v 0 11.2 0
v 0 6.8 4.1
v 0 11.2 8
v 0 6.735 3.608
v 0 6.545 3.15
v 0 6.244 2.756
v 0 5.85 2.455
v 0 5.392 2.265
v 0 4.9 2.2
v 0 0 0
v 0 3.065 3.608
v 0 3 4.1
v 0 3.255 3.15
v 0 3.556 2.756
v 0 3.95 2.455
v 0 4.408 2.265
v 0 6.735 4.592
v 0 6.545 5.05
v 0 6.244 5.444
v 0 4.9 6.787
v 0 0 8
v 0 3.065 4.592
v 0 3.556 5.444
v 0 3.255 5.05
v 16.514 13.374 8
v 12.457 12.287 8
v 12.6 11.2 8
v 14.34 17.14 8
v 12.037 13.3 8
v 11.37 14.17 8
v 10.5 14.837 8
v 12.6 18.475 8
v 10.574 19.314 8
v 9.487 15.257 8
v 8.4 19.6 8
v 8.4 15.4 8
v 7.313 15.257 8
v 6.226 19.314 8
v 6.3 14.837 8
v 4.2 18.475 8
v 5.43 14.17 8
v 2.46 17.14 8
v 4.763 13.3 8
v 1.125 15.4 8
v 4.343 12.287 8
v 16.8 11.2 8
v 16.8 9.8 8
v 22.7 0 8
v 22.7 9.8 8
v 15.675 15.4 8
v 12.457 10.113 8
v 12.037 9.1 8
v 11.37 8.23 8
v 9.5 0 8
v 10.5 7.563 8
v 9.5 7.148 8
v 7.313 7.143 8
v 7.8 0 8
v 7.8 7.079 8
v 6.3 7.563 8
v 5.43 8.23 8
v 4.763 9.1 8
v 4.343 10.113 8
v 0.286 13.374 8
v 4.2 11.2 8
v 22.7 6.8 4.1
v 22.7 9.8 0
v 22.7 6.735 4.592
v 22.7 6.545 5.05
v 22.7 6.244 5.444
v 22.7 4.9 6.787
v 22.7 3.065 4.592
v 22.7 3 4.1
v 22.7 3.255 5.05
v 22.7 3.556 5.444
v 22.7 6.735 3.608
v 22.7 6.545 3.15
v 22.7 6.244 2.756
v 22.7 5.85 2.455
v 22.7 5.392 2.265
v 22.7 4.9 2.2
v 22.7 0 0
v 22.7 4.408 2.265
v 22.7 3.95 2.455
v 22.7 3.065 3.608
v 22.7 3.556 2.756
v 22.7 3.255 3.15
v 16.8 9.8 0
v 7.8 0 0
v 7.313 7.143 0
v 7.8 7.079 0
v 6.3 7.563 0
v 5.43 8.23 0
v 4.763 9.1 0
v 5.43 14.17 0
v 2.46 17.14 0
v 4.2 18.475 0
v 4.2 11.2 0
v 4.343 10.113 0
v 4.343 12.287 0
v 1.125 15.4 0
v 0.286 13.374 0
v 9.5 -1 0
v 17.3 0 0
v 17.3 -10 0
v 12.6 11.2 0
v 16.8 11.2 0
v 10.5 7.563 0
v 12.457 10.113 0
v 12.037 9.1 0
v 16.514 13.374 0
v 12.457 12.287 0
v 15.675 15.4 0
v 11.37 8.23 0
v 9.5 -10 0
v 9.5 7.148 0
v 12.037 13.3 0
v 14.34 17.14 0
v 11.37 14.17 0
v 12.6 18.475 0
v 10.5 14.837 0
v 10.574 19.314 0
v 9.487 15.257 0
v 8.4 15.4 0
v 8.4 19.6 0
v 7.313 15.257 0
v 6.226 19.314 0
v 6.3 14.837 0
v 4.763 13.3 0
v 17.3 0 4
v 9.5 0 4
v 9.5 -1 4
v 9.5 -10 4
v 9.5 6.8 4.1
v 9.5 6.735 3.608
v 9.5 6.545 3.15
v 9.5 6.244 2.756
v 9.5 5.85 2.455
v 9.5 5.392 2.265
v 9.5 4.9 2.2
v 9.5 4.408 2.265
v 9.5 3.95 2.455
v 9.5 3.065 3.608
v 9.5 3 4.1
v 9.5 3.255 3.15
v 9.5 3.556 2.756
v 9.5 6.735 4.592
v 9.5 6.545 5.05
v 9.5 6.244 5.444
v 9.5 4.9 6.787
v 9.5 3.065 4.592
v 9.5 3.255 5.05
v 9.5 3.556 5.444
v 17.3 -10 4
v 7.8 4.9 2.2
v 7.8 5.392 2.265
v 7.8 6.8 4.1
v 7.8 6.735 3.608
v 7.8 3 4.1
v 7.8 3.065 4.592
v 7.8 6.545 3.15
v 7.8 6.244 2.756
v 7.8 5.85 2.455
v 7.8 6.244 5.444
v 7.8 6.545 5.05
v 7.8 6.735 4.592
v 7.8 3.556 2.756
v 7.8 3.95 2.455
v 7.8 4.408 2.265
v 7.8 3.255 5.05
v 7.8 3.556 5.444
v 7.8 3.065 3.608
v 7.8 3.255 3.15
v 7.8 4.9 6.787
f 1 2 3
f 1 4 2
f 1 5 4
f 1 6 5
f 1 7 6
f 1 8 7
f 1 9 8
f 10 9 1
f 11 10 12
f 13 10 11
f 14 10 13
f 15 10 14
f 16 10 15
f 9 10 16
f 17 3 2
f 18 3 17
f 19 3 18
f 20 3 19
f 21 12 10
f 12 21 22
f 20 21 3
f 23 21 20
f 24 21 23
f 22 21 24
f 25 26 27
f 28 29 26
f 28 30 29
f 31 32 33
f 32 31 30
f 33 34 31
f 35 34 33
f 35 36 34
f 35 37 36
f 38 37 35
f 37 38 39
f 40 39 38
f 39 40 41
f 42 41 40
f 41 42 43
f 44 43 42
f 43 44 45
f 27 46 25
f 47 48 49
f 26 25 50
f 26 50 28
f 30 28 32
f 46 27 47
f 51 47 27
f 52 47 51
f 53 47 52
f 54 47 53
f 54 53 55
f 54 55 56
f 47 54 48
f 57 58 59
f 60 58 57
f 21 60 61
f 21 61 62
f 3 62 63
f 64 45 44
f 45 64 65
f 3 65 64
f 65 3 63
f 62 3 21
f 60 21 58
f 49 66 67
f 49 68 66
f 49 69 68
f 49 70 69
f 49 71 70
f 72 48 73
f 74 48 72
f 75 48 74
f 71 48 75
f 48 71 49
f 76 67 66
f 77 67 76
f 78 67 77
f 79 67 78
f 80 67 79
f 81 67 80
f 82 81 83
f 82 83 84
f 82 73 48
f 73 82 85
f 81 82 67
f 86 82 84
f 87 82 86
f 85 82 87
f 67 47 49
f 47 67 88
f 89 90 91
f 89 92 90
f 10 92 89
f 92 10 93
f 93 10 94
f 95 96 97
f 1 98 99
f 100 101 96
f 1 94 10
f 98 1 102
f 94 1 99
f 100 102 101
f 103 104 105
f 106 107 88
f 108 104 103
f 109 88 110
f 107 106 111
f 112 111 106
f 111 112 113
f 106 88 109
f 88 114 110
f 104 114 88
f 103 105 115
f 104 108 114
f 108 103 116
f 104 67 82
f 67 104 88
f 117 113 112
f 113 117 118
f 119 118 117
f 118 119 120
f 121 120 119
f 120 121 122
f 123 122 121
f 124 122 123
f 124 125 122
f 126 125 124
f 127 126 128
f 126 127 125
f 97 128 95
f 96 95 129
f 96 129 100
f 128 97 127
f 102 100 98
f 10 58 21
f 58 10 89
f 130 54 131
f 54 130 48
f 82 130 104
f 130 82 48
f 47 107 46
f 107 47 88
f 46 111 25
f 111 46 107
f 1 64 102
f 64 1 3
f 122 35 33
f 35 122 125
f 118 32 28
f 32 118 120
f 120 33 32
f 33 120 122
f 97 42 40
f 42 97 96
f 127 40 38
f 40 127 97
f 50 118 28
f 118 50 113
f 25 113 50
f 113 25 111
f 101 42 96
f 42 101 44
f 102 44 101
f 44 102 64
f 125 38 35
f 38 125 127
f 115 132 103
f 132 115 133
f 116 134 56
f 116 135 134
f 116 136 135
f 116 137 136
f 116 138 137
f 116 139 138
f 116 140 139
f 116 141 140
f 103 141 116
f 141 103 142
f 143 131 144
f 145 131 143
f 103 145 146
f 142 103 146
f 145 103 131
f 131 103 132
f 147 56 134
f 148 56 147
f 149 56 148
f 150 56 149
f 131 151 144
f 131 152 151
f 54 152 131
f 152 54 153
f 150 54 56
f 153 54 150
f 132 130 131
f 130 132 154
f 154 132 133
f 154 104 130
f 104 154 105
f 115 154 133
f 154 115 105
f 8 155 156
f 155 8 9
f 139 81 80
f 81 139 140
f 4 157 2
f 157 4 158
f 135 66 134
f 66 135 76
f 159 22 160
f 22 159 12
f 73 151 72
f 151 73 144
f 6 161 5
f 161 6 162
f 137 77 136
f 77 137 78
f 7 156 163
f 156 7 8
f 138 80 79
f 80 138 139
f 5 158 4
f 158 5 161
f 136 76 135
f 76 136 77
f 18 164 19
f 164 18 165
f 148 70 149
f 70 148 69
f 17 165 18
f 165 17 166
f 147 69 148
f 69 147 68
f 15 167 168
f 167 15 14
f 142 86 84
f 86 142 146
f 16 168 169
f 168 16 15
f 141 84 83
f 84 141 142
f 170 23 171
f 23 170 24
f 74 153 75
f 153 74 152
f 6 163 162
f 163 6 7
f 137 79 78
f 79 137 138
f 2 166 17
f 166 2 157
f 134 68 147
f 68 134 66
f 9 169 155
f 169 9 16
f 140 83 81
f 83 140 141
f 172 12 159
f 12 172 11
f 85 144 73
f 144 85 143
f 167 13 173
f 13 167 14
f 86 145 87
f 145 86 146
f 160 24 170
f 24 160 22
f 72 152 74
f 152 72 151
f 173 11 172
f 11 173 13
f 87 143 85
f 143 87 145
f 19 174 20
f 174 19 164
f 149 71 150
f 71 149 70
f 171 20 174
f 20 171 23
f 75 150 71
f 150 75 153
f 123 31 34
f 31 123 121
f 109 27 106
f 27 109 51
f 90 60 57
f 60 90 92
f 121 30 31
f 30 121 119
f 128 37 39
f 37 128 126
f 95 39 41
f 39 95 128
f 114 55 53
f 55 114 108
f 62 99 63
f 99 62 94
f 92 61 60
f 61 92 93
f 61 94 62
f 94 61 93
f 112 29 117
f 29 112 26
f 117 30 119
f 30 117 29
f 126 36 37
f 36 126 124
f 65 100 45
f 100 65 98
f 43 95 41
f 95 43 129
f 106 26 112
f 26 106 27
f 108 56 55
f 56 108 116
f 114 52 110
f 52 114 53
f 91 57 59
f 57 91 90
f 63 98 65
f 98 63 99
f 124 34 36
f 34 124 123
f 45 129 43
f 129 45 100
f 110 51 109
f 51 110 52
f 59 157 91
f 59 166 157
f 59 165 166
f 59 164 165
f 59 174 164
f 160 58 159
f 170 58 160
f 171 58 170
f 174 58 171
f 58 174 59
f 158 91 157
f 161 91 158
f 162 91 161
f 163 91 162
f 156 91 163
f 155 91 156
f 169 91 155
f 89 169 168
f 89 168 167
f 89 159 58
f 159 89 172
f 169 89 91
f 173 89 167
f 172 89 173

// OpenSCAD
// author: clayb.rpi@gmail.com
// date: 2012-04-29
// units: mm
// description: printrbot Y axis bar end with end-stop trigger
// NOTE: This is an unofficial piece

$fn=24;

module tear(r, h) {
    union() {
        cylinder(r=r, h=h);
        rotate([0, 0, 135]) cube([r, r, h]);
    }
}

difference() {
    union() {
		cube([22.7, 9.8, 8]);
		cube([16.8, 11.2, 8]);

		translate([8.4, 11.2, 0]) cylinder(r=16.8/2, h=8);

		// end stop trigger

		translate([9.5, -10, 0]) cube([7.8, 11.2, 4]);
    }

	translate([-0.1, 4.9, 4.1]) rotate([0, 90, 0]) tear(r=3.8/2, h=23);
	translate([8.4, 11.2, -1]) cylinder(r=4.2, h=10);
	translate([7.8, -1, -1]) cube([1.7, 11.2, 10]);
}
